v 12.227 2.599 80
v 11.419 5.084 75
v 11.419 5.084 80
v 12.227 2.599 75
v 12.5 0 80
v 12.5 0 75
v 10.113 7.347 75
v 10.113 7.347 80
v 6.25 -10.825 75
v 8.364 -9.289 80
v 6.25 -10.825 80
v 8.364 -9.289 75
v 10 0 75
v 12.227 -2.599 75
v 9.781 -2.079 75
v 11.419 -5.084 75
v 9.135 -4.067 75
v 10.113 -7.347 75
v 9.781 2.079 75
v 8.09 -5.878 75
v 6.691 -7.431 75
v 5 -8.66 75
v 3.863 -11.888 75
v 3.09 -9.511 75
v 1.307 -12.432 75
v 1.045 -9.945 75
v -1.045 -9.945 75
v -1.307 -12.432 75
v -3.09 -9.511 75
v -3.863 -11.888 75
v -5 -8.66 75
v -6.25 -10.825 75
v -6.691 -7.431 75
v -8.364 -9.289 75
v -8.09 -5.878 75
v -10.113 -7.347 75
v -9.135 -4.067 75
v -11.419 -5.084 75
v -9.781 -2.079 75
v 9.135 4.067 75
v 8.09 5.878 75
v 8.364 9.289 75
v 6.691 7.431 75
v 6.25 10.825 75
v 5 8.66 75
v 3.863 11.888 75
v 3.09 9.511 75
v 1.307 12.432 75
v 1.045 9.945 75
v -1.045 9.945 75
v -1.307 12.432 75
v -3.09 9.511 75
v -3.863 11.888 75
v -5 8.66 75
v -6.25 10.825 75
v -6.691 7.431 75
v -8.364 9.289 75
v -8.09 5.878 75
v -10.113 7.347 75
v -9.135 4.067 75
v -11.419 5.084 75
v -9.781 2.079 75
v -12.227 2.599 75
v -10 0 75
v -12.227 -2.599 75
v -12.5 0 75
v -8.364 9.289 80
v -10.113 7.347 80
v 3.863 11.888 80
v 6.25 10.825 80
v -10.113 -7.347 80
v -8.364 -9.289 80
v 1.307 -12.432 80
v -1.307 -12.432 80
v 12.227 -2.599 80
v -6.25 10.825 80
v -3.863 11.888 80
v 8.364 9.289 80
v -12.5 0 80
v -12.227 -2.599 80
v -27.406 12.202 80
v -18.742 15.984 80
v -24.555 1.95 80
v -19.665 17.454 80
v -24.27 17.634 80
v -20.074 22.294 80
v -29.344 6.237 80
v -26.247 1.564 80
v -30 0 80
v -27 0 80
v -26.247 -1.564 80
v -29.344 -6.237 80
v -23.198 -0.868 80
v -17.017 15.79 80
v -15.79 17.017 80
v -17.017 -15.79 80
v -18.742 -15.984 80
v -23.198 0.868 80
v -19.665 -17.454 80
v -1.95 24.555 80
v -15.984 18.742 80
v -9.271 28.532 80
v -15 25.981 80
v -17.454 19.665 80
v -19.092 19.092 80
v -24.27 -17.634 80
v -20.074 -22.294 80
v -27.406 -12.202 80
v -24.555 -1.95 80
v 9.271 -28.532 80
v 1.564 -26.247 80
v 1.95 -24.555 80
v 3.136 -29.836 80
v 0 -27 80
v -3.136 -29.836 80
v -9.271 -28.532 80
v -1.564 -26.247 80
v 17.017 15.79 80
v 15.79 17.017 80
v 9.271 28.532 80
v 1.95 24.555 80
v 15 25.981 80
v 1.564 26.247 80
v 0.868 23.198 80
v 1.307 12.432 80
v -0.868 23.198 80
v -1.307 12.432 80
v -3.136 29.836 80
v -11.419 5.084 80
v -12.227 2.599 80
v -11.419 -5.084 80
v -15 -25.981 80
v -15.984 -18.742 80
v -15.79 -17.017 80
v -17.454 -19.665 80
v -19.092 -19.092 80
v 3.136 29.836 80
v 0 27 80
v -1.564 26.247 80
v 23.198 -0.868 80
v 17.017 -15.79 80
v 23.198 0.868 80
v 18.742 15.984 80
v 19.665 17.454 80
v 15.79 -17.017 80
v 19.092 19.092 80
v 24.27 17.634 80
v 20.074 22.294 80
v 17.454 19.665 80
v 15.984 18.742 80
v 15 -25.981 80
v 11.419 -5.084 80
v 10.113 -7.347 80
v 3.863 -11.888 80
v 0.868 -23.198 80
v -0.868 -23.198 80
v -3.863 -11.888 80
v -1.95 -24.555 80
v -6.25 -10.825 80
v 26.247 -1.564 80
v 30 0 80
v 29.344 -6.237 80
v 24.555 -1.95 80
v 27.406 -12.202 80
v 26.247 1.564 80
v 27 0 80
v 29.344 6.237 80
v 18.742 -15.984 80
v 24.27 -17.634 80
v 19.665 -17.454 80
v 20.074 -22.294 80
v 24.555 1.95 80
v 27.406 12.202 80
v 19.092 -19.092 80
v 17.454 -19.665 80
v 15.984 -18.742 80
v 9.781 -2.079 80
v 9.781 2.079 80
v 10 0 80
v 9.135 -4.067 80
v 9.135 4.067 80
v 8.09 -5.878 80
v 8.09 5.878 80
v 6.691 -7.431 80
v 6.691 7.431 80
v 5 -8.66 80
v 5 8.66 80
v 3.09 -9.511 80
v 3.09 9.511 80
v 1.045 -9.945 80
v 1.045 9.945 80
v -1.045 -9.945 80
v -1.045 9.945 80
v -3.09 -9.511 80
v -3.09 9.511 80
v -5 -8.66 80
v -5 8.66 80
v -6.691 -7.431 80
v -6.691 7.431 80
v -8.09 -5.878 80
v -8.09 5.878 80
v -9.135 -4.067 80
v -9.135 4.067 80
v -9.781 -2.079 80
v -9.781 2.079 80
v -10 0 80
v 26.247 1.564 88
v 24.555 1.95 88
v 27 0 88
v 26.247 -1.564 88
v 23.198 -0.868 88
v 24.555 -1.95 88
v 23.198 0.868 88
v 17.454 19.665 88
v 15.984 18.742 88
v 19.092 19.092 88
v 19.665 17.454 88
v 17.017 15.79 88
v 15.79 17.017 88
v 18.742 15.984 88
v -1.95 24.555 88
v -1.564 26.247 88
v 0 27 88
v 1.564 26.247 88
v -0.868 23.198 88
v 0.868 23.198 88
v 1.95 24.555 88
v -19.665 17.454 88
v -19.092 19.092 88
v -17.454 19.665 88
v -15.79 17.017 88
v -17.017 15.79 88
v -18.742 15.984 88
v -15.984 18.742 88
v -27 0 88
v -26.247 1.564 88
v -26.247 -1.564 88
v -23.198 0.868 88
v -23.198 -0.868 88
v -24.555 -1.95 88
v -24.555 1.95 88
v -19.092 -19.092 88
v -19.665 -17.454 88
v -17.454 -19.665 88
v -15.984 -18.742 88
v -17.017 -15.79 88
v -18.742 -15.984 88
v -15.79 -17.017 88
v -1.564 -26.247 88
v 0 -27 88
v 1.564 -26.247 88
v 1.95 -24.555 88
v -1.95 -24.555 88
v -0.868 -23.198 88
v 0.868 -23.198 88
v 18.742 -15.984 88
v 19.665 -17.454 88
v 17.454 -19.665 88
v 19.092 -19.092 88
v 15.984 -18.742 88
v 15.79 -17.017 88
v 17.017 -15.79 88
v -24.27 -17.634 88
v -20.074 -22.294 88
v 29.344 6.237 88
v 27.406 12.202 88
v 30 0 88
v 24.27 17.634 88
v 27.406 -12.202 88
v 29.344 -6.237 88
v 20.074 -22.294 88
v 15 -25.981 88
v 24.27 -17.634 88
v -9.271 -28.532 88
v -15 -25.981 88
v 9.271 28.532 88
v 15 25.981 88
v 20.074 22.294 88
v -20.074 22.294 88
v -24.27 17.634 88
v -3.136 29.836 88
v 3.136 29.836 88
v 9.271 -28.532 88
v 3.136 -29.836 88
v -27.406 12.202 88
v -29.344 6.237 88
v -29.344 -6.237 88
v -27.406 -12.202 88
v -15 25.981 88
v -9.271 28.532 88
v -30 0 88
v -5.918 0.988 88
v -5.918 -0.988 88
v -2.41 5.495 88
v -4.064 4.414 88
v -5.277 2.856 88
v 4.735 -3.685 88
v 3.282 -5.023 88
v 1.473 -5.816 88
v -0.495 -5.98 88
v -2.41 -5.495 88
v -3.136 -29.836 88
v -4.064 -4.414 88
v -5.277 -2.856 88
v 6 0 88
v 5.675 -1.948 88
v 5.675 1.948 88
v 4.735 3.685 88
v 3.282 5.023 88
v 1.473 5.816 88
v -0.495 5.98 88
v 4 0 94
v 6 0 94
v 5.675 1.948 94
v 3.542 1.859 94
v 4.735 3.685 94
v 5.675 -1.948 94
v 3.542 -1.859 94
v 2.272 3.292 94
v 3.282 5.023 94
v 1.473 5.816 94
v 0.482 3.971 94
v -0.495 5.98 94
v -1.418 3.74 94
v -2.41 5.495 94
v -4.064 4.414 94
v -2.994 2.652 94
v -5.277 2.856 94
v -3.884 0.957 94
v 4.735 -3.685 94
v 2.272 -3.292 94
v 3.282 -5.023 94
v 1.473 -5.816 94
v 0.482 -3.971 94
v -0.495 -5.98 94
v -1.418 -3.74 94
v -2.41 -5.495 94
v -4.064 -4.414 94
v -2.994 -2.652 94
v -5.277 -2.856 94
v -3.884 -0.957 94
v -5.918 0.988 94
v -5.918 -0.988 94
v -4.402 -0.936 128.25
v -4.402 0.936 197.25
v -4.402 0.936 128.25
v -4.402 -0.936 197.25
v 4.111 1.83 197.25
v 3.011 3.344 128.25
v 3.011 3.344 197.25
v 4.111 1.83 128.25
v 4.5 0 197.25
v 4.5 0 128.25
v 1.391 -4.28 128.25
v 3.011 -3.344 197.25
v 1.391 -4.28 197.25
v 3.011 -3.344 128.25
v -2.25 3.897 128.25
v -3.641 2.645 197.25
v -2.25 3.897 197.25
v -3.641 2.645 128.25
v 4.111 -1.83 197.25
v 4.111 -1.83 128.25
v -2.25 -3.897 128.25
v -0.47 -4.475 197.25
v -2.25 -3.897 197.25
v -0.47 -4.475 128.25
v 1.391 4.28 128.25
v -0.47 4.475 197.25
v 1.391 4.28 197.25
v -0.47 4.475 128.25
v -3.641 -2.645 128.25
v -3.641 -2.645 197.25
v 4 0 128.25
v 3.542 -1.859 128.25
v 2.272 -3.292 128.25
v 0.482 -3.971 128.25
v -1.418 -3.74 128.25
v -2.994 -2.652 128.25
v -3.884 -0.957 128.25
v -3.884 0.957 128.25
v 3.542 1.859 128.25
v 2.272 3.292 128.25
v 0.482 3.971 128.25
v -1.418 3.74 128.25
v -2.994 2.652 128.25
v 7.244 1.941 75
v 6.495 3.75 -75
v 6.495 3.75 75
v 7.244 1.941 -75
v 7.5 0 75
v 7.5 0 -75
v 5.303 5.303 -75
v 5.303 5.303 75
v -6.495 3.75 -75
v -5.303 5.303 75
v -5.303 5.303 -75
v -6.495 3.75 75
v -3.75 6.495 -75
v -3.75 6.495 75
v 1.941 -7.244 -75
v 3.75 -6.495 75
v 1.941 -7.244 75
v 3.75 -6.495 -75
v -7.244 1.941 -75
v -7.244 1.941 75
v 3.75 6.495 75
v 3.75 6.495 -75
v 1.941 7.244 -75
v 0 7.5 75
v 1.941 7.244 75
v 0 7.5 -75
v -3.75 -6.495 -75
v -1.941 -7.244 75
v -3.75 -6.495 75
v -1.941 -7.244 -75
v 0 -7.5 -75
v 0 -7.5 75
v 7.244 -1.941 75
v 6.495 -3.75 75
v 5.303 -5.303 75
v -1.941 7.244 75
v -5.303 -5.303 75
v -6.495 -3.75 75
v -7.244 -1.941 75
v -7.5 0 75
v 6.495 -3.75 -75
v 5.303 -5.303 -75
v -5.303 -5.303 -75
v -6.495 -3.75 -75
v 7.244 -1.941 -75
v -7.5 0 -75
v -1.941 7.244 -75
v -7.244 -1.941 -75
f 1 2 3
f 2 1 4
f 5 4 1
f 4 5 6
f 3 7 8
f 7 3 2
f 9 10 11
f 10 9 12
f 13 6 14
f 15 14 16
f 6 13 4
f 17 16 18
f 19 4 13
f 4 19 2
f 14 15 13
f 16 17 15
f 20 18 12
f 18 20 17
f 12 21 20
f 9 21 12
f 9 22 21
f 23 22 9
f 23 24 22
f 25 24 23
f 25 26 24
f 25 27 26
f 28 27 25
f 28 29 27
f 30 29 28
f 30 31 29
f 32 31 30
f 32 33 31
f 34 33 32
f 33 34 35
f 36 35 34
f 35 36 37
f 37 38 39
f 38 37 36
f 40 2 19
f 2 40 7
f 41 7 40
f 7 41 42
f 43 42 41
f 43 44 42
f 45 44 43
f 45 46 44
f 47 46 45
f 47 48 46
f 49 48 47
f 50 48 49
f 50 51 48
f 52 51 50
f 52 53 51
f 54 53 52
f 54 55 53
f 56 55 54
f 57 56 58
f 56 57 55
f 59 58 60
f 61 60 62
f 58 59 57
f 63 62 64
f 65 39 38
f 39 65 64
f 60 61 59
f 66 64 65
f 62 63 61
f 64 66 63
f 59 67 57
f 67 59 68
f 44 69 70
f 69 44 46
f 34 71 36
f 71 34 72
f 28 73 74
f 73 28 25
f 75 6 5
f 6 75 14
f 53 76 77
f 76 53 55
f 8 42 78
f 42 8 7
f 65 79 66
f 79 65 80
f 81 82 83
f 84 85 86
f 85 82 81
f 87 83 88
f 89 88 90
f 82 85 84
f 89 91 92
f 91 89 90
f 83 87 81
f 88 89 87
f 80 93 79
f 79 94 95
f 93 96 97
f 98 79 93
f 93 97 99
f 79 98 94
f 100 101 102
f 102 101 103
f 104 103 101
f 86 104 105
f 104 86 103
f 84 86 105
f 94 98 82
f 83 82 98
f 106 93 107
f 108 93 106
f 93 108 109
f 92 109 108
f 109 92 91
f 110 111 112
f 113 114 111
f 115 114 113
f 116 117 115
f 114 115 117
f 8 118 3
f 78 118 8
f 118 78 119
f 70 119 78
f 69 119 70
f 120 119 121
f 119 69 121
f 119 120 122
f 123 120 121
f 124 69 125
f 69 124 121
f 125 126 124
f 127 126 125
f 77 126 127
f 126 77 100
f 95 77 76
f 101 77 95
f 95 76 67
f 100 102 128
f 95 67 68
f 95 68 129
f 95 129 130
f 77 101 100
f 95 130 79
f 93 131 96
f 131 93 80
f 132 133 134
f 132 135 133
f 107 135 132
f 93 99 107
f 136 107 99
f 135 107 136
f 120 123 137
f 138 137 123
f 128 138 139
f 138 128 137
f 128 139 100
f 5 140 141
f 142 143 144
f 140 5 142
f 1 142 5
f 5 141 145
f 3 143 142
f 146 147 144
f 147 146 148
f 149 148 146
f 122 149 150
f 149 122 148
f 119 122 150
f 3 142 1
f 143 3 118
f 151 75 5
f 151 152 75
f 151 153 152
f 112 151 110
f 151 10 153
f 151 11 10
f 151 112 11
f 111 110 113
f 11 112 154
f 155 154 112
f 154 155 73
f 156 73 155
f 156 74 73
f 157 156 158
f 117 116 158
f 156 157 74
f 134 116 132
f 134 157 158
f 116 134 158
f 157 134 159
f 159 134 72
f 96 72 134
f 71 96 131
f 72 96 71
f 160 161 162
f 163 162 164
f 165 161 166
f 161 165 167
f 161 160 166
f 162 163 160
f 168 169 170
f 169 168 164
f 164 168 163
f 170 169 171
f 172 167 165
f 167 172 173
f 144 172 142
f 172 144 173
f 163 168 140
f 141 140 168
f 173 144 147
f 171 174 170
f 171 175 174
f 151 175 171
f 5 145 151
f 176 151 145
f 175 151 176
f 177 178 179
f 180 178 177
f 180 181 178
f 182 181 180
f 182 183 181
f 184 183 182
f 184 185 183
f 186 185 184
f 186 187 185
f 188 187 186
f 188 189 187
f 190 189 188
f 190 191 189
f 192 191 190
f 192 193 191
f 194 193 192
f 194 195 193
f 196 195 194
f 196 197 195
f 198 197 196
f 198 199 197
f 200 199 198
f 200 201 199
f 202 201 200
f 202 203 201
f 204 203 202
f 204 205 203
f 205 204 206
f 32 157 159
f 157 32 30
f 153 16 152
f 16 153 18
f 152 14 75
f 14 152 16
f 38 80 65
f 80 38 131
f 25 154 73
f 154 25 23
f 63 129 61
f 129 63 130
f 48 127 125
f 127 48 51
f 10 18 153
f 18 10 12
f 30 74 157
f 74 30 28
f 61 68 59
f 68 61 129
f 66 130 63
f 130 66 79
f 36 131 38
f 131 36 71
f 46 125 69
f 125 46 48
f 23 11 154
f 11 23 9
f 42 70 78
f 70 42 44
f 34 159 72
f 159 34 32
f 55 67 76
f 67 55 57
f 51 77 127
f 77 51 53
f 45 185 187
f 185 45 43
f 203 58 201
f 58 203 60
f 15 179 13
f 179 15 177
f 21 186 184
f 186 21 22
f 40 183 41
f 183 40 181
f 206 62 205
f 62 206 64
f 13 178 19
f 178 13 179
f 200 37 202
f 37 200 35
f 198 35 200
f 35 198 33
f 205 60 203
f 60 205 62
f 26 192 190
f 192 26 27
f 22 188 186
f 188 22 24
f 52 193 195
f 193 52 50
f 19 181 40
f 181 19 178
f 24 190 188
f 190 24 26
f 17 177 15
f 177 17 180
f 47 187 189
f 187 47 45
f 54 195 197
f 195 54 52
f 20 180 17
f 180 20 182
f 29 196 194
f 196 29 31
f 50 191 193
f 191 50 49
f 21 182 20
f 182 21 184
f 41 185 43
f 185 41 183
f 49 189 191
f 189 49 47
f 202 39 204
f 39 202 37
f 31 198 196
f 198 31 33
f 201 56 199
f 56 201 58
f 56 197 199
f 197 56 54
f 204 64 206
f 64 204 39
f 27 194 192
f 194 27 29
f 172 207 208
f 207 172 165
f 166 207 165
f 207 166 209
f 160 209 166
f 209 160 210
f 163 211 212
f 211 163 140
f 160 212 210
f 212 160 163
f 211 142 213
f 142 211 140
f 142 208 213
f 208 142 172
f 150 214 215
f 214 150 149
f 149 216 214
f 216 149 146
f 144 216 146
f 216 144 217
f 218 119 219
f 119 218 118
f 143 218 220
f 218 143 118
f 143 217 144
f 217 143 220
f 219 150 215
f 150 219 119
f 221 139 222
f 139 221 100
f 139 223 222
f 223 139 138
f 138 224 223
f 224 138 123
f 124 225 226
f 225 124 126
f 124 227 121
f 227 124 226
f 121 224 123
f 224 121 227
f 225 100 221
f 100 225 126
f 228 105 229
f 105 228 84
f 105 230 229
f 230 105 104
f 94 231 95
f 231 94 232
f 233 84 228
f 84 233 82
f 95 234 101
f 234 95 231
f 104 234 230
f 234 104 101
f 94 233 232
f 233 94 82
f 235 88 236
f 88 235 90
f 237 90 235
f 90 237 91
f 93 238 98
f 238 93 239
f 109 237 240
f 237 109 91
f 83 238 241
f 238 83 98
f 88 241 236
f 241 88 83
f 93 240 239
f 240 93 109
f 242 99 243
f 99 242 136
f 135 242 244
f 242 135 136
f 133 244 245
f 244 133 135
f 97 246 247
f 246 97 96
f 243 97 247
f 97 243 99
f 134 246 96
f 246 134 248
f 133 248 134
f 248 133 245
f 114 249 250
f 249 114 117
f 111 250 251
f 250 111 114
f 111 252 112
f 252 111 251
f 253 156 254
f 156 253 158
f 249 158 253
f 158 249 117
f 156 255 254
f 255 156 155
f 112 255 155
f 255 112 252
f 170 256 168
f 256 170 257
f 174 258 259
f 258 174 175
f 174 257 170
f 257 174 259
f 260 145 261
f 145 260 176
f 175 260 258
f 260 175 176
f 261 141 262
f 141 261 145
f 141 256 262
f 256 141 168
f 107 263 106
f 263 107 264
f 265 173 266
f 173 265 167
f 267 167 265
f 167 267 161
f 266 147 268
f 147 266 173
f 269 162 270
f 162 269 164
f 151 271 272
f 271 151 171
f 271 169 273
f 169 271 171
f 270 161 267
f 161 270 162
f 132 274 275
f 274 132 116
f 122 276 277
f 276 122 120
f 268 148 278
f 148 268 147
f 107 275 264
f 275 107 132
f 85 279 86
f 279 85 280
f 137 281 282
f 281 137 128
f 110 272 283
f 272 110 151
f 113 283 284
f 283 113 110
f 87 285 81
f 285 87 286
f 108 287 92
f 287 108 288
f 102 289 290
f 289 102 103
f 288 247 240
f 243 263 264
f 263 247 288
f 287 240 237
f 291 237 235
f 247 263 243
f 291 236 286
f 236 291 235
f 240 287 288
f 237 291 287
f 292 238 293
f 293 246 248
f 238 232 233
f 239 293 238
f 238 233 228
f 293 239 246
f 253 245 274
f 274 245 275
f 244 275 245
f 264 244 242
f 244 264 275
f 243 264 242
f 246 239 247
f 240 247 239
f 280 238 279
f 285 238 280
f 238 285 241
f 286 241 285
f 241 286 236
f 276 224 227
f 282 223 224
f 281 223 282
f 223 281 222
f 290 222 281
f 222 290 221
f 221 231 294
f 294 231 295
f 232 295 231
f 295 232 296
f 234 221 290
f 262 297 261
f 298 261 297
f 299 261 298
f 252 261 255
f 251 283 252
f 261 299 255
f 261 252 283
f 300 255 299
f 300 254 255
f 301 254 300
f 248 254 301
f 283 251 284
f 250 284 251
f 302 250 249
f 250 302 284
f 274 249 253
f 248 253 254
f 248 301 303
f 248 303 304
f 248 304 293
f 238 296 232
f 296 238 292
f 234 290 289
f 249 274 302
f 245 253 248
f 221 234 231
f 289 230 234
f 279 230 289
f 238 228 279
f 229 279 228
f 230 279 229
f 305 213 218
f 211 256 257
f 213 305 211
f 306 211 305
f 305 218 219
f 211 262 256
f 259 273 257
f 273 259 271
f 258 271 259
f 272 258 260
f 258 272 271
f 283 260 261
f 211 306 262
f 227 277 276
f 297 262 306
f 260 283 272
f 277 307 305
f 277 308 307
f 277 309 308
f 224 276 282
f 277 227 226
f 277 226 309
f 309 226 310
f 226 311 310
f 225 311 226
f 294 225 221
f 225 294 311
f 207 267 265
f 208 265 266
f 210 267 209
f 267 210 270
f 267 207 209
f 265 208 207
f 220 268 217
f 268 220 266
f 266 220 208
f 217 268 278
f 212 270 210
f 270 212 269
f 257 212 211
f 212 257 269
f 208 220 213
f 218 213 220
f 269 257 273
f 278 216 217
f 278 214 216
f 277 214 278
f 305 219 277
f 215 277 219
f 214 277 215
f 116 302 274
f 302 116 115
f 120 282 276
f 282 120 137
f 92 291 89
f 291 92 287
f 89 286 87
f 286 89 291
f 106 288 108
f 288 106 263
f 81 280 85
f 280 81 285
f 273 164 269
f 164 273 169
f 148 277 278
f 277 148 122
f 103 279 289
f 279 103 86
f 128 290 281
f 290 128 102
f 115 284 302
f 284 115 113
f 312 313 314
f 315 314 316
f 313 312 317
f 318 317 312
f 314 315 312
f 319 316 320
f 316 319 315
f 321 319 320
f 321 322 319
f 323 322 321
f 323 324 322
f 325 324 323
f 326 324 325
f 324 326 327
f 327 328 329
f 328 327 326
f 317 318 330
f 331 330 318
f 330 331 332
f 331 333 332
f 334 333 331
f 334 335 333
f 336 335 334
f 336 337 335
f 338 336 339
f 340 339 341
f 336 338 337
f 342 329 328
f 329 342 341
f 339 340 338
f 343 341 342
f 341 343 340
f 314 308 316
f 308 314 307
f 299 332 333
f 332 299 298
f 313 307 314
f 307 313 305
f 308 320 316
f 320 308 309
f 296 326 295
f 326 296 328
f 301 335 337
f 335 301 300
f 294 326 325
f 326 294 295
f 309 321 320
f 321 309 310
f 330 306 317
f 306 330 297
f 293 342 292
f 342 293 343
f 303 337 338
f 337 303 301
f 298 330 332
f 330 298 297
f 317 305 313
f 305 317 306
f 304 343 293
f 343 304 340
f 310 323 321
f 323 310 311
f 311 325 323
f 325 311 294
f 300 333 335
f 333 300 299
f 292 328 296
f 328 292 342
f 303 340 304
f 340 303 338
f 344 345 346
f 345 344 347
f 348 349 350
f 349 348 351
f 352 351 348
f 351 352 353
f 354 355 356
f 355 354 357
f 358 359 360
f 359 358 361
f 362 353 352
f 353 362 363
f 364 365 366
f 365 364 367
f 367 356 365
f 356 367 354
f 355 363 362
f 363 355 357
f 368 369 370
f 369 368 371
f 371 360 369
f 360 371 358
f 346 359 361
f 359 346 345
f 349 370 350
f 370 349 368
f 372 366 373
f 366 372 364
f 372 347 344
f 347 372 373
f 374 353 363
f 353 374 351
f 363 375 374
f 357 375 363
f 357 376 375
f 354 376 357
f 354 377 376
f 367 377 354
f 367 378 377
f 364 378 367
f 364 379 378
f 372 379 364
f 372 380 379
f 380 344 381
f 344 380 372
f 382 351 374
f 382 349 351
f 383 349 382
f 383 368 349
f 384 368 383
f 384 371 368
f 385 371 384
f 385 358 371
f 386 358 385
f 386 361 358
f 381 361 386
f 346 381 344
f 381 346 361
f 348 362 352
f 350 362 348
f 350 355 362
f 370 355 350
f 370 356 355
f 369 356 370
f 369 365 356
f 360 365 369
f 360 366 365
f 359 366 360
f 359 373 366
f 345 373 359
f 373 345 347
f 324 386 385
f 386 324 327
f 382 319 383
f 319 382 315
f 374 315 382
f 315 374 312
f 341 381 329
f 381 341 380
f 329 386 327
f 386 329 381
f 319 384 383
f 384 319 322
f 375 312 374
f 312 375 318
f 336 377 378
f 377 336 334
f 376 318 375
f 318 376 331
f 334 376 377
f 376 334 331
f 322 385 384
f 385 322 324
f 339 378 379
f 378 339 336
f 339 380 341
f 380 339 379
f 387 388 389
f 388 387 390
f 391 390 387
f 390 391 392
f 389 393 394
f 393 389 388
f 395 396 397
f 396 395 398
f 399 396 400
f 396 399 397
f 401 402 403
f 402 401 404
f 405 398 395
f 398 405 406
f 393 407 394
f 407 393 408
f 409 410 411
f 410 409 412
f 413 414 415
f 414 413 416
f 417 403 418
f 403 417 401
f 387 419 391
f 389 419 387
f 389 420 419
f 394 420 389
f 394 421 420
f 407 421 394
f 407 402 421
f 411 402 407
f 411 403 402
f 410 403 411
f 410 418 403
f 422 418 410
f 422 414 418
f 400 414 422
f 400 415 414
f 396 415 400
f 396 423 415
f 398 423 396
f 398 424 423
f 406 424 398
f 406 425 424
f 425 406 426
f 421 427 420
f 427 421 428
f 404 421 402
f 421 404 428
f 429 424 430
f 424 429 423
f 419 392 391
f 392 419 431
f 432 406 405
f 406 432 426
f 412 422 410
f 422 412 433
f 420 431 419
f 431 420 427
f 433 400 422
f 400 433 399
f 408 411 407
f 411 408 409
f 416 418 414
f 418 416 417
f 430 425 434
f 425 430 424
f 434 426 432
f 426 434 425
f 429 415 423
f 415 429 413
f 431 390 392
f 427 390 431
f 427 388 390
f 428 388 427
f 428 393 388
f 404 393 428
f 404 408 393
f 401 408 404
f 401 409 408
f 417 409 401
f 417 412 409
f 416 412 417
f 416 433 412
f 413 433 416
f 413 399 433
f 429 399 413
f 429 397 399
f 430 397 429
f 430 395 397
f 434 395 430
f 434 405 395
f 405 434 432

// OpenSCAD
// Parameters for the central shaft
shaft_length = 150; // Elongated length of the shaft to match the original model
shaft_diameter = 15; // Increased diameter to match the original model

// Central Shaft
module central_shaft() {
    cylinder(h = shaft_length, d = shaft_diameter, center = true);
}

// Parameters for the spacer ring
spacer_ring_thickness = 5; // Thickened to match the original model
spacer_ring_diameter = 25; // Increased outer diameter to match the original model

// Spacer Ring
module spacer_ring() {
    difference() {
        cylinder(h = spacer_ring_thickness, d = spacer_ring_diameter, center = true);
        cylinder(h = spacer_ring_thickness + 1, d = spacer_ring_diameter - 5, center = true);
    }
}

// Parameters for the flange plate
flange_plate_thickness = 8; // Increased thickness to match the original model
flange_plate_diameter = 60; // Increased diameter to match the original model
bolt_hole_diameter = 4; // Adjusted diameter of bolt holes
bolt_hole_count = 8; // Increased number of bolt holes to match the original model

// Flange Plate
module flange_plate() {
    difference() {
        cylinder(h = flange_plate_thickness, d = flange_plate_diameter, center = true);
        for (i = [0 : 360 / bolt_hole_count : 360 - 360 / bolt_hole_count]) {
            rotate([0, 0, i]) {
                translate([flange_plate_diameter / 2 - 5, 0, 0]) {
                    cylinder(h = flange_plate_thickness + 1, d = bolt_hole_diameter, center = true);
                }
            }
        }
    }
}

// Parameters for the nut
nut_size = 12; // Resized to be larger to match the original model
nut_thickness = 6; // Increased thickness to match the original model

// Nut
module nut() {
    difference() {
        cylinder(h = nut_thickness, d = nut_size, center = true);
        rotate([0, 0, 30]) {
            for (i = [0 : 60 : 300]) {
                rotate([0, 0, i]) {
                    translate([nut_size / 2, 0, 0]) {
                        square([nut_size / 2, nut_size / 2], center = true);
                    }
                }
            }
        }
    }
}

// Parameters for the bolt
bolt_length = 70; // Lengthened to match the original model
bolt_diameter = 8; // Increased diameter to match the original model
thread_pitch = 1.5; // Adjusted threading to make it more pronounced

// Bolt
module bolt() {
    union() {
        cylinder(h = bolt_length, d = bolt_diameter, center = true);
        for (z = [0 : thread_pitch : bolt_length - thread_pitch]) {
            translate([0, 0, z]) {
                cylinder(h = thread_pitch, d = bolt_diameter + 1, center = true);
            }
        }
    }
}

// Render the components
translate([0, 0, 0]) {
    central_shaft();
    translate([0, 0, shaft_length / 2 + spacer_ring_thickness / 2]) {
        spacer_ring();
    }
    translate([0, 0, shaft_length / 2 + spacer_ring_thickness + flange_plate_thickness / 2]) {
        flange_plate();
    }
    translate([0, 0, shaft_length / 2 + spacer_ring_thickness + flange_plate_thickness + nut_thickness / 2]) {
        nut();
    }
    translate([0, 0, shaft_length / 2 + spacer_ring_thickness + flange_plate_thickness + nut_thickness + bolt_length / 2]) {
        bolt();
    }
}
